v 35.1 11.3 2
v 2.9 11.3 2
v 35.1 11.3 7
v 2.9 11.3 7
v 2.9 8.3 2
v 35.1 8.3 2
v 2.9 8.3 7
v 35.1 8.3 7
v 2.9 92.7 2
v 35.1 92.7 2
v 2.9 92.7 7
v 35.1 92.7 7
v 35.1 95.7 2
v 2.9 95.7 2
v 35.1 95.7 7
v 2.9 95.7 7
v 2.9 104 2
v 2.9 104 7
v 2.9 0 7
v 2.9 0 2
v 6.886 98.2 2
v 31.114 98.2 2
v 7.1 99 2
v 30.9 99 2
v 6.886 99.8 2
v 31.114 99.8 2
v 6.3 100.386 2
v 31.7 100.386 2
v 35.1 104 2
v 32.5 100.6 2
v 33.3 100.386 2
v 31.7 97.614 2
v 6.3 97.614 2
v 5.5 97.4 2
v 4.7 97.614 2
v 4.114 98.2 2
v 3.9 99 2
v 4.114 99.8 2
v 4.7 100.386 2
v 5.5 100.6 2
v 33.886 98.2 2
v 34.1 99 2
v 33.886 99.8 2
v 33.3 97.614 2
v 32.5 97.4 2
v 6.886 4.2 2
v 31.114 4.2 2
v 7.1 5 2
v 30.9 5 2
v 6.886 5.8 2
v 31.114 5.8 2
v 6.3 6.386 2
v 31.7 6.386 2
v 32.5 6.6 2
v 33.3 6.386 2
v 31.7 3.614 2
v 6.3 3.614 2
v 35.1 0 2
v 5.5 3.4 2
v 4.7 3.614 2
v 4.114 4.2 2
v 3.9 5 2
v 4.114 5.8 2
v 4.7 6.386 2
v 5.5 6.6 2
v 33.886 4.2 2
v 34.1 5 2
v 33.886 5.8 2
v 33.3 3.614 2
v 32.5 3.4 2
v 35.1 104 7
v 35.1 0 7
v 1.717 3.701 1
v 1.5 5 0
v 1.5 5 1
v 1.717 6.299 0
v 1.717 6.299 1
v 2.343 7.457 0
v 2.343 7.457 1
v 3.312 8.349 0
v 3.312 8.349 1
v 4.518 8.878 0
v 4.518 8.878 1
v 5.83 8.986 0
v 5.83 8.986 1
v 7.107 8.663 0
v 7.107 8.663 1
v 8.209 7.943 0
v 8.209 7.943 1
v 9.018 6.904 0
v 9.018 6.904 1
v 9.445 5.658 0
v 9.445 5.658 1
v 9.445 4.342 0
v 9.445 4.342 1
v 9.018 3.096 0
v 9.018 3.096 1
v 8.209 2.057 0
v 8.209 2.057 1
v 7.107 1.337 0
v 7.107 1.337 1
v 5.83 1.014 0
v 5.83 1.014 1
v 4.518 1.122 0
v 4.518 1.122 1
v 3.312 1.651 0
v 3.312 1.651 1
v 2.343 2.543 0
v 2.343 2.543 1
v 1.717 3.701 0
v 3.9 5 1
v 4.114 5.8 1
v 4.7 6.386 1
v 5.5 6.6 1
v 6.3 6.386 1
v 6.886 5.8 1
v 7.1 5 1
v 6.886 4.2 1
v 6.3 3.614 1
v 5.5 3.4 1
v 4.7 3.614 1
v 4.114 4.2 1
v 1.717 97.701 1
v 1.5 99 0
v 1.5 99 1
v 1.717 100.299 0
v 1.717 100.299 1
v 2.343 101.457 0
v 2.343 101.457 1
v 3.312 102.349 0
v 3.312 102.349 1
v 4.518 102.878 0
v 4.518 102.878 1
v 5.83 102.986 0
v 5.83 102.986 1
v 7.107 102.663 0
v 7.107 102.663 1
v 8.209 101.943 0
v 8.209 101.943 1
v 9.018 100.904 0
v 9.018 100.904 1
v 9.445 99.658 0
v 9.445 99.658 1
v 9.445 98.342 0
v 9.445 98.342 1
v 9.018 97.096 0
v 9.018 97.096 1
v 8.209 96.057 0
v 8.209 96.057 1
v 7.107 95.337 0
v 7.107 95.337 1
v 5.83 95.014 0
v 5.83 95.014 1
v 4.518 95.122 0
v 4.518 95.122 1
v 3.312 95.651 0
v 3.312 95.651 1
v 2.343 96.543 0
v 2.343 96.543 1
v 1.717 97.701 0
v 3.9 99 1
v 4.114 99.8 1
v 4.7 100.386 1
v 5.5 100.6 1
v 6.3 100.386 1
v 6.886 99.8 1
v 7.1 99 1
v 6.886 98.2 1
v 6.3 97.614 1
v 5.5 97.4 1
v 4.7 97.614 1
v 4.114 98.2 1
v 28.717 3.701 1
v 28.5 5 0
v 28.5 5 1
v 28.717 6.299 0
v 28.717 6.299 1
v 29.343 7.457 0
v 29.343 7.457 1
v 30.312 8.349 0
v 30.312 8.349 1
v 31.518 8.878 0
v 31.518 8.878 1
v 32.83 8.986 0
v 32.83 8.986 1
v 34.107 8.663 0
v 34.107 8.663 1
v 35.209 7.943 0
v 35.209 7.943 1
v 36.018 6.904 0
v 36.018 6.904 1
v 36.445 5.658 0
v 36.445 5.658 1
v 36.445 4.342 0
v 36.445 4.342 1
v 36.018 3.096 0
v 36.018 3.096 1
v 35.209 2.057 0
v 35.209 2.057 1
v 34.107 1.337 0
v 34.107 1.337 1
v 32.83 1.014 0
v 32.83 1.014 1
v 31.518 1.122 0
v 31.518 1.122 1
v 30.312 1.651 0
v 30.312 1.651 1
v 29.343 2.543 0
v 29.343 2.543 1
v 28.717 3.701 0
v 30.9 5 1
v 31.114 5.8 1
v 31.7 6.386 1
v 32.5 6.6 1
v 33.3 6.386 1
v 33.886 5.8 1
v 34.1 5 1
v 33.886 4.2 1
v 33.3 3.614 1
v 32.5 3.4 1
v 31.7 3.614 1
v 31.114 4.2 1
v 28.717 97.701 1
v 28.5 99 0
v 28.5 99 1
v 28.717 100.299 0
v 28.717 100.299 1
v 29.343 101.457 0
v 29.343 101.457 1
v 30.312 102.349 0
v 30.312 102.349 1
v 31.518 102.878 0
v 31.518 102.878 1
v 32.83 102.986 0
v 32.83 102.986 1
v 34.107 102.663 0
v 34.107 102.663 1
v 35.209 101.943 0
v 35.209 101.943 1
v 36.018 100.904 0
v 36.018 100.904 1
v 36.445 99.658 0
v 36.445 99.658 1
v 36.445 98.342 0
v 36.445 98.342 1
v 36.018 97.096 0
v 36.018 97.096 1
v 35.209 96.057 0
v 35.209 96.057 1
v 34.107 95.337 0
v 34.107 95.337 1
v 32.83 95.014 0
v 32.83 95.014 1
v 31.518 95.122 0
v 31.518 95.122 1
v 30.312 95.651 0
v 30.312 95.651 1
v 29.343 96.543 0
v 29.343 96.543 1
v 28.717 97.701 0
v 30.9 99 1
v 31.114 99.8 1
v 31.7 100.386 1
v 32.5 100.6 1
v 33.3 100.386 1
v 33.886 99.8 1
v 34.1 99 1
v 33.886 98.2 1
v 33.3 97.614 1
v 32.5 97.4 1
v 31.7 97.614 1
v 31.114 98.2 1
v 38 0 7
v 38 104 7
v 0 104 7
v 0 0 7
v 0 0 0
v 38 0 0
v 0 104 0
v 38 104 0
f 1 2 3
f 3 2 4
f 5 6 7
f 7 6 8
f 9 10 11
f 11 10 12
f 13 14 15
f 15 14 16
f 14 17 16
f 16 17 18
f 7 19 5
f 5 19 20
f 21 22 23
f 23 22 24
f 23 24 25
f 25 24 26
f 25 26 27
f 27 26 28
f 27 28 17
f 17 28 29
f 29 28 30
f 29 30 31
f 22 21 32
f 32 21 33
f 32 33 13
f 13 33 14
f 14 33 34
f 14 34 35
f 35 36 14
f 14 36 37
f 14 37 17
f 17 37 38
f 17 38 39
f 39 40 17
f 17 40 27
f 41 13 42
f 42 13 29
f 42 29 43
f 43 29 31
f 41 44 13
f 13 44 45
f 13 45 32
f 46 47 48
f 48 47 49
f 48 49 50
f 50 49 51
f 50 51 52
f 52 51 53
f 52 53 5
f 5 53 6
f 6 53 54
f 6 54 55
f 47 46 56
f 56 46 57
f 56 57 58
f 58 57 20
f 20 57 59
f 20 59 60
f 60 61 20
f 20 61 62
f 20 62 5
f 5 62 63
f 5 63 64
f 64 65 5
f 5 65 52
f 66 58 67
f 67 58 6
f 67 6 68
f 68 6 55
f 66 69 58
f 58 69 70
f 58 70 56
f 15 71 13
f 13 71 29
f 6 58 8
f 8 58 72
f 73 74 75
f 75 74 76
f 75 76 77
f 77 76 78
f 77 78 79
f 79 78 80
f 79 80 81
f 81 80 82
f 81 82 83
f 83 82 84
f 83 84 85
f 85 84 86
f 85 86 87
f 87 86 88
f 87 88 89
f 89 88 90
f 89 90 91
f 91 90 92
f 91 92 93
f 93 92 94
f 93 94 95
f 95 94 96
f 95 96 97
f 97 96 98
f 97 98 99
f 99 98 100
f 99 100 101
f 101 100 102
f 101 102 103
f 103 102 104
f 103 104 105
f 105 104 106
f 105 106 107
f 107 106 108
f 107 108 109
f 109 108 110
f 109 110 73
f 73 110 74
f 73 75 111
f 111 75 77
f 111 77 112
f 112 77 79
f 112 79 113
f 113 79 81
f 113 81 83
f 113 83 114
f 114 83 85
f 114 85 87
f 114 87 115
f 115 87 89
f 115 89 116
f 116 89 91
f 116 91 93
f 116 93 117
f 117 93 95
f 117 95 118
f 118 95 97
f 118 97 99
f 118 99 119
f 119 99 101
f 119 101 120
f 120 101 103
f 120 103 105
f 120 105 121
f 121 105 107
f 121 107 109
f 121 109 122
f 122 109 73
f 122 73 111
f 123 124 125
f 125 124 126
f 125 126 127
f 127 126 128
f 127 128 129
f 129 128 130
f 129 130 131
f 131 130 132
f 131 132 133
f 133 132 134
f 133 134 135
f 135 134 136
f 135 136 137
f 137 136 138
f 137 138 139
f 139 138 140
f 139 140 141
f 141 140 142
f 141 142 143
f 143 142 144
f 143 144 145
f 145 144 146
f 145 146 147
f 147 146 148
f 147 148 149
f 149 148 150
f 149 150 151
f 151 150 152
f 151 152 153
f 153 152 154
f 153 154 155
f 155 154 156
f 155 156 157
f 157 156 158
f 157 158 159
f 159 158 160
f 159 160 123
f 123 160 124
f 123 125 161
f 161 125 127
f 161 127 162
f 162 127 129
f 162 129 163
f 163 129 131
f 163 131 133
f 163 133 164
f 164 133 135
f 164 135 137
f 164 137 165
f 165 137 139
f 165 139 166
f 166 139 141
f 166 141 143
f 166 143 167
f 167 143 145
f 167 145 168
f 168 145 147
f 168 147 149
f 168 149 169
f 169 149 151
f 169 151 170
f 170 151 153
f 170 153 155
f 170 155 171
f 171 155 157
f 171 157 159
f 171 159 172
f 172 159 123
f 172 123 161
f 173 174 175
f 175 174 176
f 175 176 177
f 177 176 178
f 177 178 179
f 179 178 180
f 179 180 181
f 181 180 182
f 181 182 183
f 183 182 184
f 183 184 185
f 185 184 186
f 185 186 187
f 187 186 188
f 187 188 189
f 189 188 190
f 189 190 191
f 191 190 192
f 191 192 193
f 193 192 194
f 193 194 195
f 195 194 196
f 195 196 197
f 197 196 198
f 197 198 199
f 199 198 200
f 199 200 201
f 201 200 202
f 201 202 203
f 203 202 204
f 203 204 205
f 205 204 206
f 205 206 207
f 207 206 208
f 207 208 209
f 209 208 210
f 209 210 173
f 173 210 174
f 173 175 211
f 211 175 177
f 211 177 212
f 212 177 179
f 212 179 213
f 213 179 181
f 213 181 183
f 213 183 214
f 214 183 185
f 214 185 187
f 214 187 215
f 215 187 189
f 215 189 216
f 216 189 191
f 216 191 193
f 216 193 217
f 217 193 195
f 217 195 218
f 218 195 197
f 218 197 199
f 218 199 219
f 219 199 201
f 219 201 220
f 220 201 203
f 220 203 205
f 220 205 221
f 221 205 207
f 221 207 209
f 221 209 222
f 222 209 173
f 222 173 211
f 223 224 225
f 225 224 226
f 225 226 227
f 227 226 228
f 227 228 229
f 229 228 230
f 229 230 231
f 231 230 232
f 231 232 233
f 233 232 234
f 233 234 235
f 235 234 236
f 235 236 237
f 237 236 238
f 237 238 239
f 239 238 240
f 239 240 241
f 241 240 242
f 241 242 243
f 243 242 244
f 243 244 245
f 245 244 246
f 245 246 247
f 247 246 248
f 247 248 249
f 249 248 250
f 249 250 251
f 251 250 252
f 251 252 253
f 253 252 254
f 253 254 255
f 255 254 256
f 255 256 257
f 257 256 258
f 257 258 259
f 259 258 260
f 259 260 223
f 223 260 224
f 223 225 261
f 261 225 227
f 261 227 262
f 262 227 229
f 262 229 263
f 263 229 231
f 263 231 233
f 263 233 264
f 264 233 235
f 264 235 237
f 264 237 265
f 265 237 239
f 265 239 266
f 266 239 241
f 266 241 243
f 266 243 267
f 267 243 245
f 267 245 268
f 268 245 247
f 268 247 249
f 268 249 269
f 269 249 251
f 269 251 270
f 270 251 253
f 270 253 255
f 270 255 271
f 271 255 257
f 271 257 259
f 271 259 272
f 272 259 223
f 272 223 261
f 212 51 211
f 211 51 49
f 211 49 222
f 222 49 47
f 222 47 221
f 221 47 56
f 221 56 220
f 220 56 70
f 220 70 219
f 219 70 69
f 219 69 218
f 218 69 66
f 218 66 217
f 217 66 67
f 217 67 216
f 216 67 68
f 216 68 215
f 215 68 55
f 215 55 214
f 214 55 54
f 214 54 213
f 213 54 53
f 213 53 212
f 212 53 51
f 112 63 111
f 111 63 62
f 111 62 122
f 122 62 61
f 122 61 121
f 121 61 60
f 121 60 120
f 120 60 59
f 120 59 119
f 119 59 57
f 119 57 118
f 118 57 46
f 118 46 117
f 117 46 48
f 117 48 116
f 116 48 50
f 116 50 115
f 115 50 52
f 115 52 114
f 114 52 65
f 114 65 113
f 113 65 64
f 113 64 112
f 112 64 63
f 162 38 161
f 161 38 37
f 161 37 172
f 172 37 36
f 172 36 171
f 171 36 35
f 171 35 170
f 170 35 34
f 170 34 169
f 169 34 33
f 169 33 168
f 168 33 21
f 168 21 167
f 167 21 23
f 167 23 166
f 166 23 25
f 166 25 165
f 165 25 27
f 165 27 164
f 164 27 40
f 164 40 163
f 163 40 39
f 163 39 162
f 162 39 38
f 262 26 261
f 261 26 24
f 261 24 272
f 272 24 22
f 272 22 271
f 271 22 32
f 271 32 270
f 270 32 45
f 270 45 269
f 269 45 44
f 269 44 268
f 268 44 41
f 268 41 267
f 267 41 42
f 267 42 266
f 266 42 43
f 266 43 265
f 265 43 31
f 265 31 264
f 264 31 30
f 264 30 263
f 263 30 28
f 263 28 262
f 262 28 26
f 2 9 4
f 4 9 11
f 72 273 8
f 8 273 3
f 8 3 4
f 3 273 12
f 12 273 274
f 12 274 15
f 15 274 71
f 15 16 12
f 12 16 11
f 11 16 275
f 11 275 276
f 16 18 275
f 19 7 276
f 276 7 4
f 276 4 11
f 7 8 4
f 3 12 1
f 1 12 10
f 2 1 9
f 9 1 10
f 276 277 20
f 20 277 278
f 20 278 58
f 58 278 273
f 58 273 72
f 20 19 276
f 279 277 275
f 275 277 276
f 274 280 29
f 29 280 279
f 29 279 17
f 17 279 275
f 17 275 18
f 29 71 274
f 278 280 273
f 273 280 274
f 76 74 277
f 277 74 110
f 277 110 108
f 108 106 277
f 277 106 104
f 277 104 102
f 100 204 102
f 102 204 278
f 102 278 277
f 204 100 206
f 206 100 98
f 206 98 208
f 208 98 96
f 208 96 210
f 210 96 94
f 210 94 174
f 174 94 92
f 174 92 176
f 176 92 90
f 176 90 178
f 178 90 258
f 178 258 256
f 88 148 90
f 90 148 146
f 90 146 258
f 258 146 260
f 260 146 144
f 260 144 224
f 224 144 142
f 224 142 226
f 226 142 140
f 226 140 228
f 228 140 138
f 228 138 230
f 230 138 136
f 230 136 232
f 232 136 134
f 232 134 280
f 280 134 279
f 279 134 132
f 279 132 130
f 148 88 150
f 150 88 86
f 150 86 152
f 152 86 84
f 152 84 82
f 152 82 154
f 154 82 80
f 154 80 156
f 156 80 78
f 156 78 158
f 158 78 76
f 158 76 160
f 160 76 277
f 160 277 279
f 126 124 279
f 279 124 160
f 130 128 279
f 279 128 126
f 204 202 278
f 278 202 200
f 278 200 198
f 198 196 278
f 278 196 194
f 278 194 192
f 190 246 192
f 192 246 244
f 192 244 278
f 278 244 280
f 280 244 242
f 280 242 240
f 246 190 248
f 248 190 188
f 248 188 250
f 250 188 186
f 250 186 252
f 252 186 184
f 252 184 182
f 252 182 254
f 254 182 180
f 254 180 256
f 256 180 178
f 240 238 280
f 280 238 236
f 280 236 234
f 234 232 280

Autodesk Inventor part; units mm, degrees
ref_plane "YZ Plane" through (0, 0, 0) normal (1, 0, 0) x (0, 1, 0)
ref_plane "XZ Plane" through (0, 0, 0) normal (0, 1, 0) x (-1, 0, 0)
ref_plane "XY Plane" through (0, 0, 0) normal (0, 0, 1) x (1, 0, 0)
sketch "スケッチ1" plane through (0, 0, 0) normal (0, 0, 1) x (1, 0, 0)
  line L0 (0, 0) -> (38, 0)
  line L1 (38, 0) -> (38, 104)
  line L2 (38, 104) -> (0, 104)
  line L3 (0, 104) -> (0, 0)
  dimension "d0" = 38
  dimension "d1" = 104
extrude "押し出し1" add sketch "スケッチ1" along normal blind 2
sketch "スケッチ2" plane through (0, 0, 2) normal (0, 0, 1) x (1, 0, 0)
  line L0 (38, 104) -> (0, 104) projected
  line L1 (0, 0) -> (38, 0)
  line L2 (38, 0) -> (38, 104)
  line L3 (38, 104) -> (0, 104)
  line L4 (0, 104) -> (0, 0)
  line L5 (2.9, 0) -> (35.1, 0)
  line L6 (35.1, 0) -> (35.1, 104)
  line L7 (35.1, 104) -> (2.9, 104)
  line L8 (2.9, 104) -> (2.9, 0)
  point P0 (2.9, 0)
  dimension "d4" = 2.9
  dimension "d5" = 2.9
  dimension "d6" = 0
  dimension "d7" = 0
extrude "押し出し2" add sketch "スケッチ2" along normal blind 5 contours L2 L1 L6 L0 | L8 L1 L4 L0
sketch "スケッチ3" plane through (0, 0, 0) normal (0, 0, -1) x (-1, 0, 0)
  line L0 (-38, 104) -> (0, 104) projected
  line L1 (0, 0) -> (-38, 0) projected
  line L2 (-35.1, 0) -> (-35.1, 104) projected
  line L3 (-2.9, 104) -> (-2.9, 0) projected
  point P0 (-32.5, 99)
  point P1 (-5.5, 99)
  point P2 (-5.5, 5)
  point P3 (-32.5, 5)
  dimension "d10" = 5
  dimension "d11" = 5
  dimension "d12" = 5
  dimension "d13" = 5
  dimension "d14" = 27
  dimension "d15" = 2.6
  dimension "d16" = 27
  dimension "d17" = 2.6
hole "穴1" at (32.5, 99, 0) at (5.5, 99, 0) at (5.5, 5, 0) at (32.5, 5, 0) direction (0, 0, 1) diameter 3.2 end through all
sketch "スケッチ4" plane through (0, 0, 0) normal (0, 0, -1) x (-1, 0, 0)
  circle A0 centre (-32.5, 99) radius 1.6 projected
  circle A1 centre (-5.5, 99) radius 1.6 projected
  circle A2 centre (-32.5, 5) radius 1.6 projected
  line L0 (0, 104) -> (0, 0) projected
  line L1 (0, 0) -> (-38, 0) projected
  circle A3 centre (-32.5, 99) radius 4
  circle A4 centre (-5.5, 99) radius 4
  circle A5 centre (-32.5, 5) radius 4
  circle A6 centre (-5.5, 5) radius 1.6 projected
  circle A7 centre (-5.5, 5) radius 4
  point P0 (-5.5, 15)
  dimension "d25" = 5.5
  dimension "d26" = 15
  dimension "d27" = 8
  dimension "d28" = 8
  dimension "d29" = 8
  dimension "d30" = 8
extrude "押し出し3" cut sketch "スケッチ4" against normal blind 1
sketch "スケッチ5" plane through (0, 0, 2) normal (0, 0, 1) x (1, 0, 0)
  line L0 (2.9, 104) -> (2.9, 0) projected
  line L1 (35.1, 0) -> (35.1, 104) projected
  line L2 (2.9, 8.3) -> (35.1, 8.3)
  line L3 (35.1, 8.3) -> (35.1, 11.3)
  line L4 (35.1, 11.3) -> (2.9, 11.3)
  line L5 (2.9, 11.3) -> (2.9, 8.3)
  line L6 (2.9, 95.7) -> (35.1, 95.7)
  line L7 (35.1, 95.7) -> (35.1, 92.7)
  line L8 (35.1, 92.7) -> (2.9, 92.7)
  line L9 (2.9, 92.7) -> (2.9, 95.7)
  circle A0 centre (32.5, 5) radius 1.6 projected
  circle A1 centre (5.5, 5) radius 1.6 projected
  circle A2 centre (5.5, 99) radius 1.6 projected
  circle A3 centre (32.5, 99) radius 1.6 projected
  line L10 (2.9, 104) -> (2.9, 0) projected
  line L11 (2.9, 0) -> (35.1, 0) projected
  line L12 (35.1, 0) -> (35.1, 104) projected
  line L13 (35.1, 104) -> (2.9, 104) projected
  point P0 (0, 0)
  point P1 (2.9, 11.3)
  point P2 (2.9, 92.7)
  point P3 (2.9, 95.7)
  dimension "d33" = 3
  dimension "d34" = 3
  dimension "d35" = 3.3
  dimension "d36" = 3.3
extrude "押し出し4" add sketch "スケッチ5" along normal blind 5 contours L6 L1 L8 L0 | L4 L1 L2 L0
properties part number "robot-arm-frame"
